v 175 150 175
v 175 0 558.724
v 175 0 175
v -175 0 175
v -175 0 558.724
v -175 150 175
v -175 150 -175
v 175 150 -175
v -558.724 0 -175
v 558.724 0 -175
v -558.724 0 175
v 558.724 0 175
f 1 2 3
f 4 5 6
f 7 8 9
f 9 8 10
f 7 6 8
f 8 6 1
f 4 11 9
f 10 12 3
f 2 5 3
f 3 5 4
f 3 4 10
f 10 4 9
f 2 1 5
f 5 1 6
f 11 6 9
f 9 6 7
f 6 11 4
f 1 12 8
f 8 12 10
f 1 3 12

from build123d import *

# Parameters (mm, degrees)
SKETCH1_W           = 350
SKETCH1_H           = 350
BOSS_EXTRUDE1_DEPTH = 150
BOSS_EXTRUDE2_DEPTH = 175
BOSS_EXTRUDE3_DEPTH = 175


with BuildPart() as part:
    # Sketch1 → Boss-Extrude1 (new body)
    with BuildSketch(Plane(origin=(0, 0, 0), x_dir=(1, 0, 0), z_dir=(0, 1, 0))):
        Rectangle(SKETCH1_W, SKETCH1_H)
    extrude(amount=BOSS_EXTRUDE1_DEPTH)

    # Sketch2 → Boss-Extrude2 (add, symmetric)
    with BuildSketch(Plane(origin=(0, 0, 0), x_dir=(0, 0, -1), z_dir=(1, 0, 0))):
        Polygon((-175, 150), (-175, 0), (-558.723859044, 0), align=None)
    extrude(amount=BOSS_EXTRUDE2_DEPTH, both=True)

    # Sketch3 → Boss-Extrude3 (add, symmetric)
    with BuildSketch(Plane.XY):
        Polygon((-175, 150), (-558.723859044, 0), (-175, 0), align=None)
        Polygon((175, 150), (175, 0), (558.723859044, 0), align=None)
    extrude(amount=BOSS_EXTRUDE3_DEPTH, both=True)


solid = part.part
